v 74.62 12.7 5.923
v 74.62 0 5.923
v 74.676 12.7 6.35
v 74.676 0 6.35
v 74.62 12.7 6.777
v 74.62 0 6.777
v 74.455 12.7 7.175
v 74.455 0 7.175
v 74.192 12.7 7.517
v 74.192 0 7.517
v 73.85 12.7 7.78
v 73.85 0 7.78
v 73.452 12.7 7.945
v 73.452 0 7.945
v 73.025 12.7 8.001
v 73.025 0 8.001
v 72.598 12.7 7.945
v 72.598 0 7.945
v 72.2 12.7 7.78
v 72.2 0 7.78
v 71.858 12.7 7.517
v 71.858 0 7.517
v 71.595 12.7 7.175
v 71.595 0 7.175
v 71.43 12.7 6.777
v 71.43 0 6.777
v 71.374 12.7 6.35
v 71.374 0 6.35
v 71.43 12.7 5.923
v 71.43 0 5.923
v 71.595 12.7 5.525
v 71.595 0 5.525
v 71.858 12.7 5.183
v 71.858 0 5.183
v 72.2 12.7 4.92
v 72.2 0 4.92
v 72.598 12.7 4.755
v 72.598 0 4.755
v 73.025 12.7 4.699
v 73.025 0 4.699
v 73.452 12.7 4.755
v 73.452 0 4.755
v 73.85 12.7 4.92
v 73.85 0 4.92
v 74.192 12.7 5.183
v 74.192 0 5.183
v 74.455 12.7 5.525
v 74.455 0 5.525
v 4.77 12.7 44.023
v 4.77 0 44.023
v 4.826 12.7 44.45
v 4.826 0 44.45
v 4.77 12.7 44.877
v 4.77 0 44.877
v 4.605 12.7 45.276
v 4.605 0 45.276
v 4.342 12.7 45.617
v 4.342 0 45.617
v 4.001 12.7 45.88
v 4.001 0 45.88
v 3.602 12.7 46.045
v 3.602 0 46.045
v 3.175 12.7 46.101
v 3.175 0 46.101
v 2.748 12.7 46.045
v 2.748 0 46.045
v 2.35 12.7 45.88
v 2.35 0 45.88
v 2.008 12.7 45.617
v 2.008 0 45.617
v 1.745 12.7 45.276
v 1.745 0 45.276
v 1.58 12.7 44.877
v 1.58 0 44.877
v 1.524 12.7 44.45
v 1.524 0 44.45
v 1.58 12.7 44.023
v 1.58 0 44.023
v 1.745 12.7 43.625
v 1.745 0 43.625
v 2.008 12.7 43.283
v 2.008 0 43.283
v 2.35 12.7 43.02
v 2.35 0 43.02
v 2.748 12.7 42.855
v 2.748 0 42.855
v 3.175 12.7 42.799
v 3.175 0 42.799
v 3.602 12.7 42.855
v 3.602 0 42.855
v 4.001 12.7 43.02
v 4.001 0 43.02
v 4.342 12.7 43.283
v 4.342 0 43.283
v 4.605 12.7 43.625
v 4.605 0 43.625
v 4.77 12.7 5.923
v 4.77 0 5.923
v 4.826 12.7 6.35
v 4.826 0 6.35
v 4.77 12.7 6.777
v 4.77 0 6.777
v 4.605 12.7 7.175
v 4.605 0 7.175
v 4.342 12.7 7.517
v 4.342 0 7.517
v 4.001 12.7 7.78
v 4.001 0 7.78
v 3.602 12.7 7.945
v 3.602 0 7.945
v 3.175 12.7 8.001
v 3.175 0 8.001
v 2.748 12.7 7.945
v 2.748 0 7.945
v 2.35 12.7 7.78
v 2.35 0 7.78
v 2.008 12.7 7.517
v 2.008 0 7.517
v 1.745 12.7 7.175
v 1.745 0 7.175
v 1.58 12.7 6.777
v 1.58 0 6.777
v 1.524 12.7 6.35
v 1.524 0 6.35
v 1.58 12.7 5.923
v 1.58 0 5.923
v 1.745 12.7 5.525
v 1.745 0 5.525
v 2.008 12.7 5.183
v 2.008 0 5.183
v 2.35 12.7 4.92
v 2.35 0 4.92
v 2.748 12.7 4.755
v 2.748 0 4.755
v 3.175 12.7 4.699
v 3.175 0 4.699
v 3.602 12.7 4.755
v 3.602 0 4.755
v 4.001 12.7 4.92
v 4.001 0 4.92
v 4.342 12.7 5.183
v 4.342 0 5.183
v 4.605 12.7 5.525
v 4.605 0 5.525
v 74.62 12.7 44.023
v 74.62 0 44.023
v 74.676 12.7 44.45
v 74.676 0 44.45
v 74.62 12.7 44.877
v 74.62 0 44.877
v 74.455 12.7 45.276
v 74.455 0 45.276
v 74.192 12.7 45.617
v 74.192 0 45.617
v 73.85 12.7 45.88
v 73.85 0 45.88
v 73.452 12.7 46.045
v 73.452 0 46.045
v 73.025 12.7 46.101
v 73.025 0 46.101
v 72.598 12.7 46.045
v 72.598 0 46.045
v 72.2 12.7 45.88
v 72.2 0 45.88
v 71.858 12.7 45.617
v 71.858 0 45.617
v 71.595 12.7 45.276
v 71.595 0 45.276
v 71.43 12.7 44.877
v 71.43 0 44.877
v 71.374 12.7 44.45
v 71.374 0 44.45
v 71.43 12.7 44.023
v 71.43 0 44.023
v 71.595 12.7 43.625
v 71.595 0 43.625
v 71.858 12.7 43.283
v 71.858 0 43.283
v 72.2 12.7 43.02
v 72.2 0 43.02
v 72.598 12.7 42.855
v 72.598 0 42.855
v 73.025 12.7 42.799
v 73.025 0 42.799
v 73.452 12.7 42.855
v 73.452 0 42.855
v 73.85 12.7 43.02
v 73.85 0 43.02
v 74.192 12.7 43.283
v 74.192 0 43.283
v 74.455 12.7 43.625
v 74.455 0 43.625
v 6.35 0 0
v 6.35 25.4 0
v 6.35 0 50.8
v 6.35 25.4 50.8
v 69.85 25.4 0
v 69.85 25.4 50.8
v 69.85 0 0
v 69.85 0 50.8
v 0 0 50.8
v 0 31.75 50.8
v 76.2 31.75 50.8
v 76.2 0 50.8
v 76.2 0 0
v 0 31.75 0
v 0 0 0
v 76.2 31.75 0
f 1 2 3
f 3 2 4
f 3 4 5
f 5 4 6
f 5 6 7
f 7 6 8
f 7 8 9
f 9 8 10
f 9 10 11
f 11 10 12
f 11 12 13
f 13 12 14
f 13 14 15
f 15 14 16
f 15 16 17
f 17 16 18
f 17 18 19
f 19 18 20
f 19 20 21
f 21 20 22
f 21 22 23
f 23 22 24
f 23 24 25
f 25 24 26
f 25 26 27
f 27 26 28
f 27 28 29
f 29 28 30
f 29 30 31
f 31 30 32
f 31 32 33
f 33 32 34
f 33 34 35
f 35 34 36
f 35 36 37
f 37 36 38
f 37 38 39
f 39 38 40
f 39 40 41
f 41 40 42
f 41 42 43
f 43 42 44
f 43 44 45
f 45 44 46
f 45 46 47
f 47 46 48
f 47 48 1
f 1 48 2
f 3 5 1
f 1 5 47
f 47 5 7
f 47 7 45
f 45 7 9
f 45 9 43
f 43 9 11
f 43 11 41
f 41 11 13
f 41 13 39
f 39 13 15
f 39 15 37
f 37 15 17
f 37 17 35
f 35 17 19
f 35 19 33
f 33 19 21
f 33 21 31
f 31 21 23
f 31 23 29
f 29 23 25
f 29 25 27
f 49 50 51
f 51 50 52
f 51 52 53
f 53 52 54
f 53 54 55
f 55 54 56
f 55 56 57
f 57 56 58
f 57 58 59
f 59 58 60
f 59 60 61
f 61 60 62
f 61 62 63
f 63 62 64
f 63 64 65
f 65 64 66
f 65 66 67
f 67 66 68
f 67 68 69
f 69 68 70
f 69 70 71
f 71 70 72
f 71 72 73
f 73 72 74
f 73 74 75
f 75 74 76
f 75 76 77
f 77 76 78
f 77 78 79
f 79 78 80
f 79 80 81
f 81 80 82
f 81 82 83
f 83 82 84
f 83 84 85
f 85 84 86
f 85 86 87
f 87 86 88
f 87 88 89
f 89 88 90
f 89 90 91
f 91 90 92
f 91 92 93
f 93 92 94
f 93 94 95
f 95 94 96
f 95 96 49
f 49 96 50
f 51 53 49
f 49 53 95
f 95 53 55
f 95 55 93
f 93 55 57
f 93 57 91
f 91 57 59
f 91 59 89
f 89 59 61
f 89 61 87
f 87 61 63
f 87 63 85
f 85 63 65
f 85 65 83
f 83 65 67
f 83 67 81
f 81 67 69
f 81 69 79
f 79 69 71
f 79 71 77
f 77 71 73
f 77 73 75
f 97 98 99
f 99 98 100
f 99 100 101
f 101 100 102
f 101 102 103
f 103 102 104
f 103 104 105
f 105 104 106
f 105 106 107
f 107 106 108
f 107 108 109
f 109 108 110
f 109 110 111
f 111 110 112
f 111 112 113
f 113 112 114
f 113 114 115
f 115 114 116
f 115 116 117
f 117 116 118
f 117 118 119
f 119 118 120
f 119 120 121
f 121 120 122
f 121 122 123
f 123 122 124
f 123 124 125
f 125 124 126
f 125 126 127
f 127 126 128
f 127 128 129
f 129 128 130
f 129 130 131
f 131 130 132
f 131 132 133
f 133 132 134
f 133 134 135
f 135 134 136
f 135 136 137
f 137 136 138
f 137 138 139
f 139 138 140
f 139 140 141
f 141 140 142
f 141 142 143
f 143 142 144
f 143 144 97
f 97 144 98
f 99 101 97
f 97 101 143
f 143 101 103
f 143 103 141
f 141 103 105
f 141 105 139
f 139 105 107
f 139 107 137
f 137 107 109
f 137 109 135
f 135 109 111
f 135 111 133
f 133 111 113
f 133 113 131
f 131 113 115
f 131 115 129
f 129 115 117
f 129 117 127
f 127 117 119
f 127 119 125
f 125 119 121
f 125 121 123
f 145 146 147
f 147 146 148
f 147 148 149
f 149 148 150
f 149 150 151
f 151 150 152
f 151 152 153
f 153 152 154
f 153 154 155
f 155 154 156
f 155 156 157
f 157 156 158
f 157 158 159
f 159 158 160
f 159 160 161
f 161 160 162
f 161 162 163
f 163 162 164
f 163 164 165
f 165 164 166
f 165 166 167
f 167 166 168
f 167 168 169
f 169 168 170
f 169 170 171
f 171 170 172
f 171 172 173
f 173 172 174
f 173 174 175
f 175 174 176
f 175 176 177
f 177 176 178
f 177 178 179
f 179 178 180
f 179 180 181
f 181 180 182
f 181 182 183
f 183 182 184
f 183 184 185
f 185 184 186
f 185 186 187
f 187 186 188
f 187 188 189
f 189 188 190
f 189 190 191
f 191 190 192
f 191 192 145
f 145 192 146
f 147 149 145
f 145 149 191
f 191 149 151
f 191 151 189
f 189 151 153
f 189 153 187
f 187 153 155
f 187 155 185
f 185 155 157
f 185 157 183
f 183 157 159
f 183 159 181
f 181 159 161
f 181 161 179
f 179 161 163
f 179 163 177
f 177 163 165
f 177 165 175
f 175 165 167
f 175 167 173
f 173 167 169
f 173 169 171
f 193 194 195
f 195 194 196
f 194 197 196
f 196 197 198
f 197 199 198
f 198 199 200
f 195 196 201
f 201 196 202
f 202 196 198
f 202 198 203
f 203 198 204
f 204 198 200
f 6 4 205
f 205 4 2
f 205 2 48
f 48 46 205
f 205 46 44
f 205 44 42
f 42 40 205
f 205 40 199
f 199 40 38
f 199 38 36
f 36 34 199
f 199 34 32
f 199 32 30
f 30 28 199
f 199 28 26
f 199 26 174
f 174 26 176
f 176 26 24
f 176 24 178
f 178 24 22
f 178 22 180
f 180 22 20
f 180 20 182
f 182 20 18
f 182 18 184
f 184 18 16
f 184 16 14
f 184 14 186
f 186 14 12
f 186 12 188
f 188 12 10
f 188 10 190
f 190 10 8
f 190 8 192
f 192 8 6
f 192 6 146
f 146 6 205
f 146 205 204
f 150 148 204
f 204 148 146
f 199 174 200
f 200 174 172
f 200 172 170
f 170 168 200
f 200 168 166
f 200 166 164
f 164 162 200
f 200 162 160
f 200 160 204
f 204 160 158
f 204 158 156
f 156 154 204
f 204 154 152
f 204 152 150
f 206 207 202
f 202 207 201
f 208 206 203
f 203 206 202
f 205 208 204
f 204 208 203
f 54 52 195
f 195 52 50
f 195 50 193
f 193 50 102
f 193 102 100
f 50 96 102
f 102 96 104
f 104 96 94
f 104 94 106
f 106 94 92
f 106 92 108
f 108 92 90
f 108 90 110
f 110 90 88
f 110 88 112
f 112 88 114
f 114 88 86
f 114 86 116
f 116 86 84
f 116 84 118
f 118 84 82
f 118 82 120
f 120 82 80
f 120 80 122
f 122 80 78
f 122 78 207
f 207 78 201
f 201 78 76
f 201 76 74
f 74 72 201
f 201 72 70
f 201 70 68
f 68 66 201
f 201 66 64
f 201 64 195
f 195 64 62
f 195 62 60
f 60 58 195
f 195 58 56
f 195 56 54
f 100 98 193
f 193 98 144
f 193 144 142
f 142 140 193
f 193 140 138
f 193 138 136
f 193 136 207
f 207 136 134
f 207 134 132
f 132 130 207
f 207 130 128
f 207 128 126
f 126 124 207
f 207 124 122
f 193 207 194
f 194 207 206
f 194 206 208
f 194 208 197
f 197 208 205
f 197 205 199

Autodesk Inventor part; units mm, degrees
ref_plane "YZ Plane" through (0, 0, 0) normal (1, 0, 0) x (0, 1, 0)
ref_plane "XZ Plane" through (0, 0, 0) normal (0, 1, 0) x (-1, 0, 0)
ref_plane "XY Plane" through (0, 0, 0) normal (0, 0, 1) x (1, 0, 0)
sketch "Sketch1" plane through (0, 0, 0) normal (0, 0, 1) x (1, 0, 0)
  line L0 (0, 0) -> (76.2, 0)
  line L1 (76.2, 0) -> (76.2, 31.75)
  line L2 (76.2, 31.75) -> (0, 31.75)
  line L3 (0, 31.75) -> (0, 0)
  line L4 (6.35, 0) -> (69.85, 0)
  line L5 (69.85, 0) -> (69.85, 25.4)
  line L6 (69.85, 25.4) -> (6.35, 25.4)
  line L7 (6.35, 25.4) -> (6.35, 0)
  dimension "d0" = 6.35
  dimension "d1" = 6.35
  dimension "d2" = 6.35
  dimension "d3" = 63.5
  dimension "d4" = 31.75
extrude "Extrusion1" add sketch "Sketch1" along normal blind 50.8 contours L3 L2 L1 L0 L5 L6 L7
sketch "Sketch2" plane through (0, 0, 0) normal (0, -1, 0) x (1, 0, 0)
  point P0 (0, 0)
ref_plane "Work Plane1" through (0, 0, 25.4) normal (0, 0, 1) x (1, 0, 0)
ref_plane "Work Plane2" through (38.1, 0, 0) normal (-1, 0, 0) x (0, 0, 1)
sketch "Sketch3" plane through (0, 0, 0) normal (0, -1, 0) x (1, 0, 0)
  circle A0 centre (3.175, 44.45) radius 1.651
  line L0 (0, 50.8) -> (6.35, 50.8) projected
  line L1 (6.35, 0) -> (6.35, 50.8) projected
  line L2 (0, 25.4) -> (76.2, 25.4)
  line L3 (76.2, 0) -> (76.2, 50.8) projected
  circle A1 centre (3.175, 6.35) radius 1.651
  line L4 (38.1, 50.8) -> (38.1, 0)
  circle A2 centre (73.025, 6.35) radius 1.651
  circle A3 centre (73.025, 44.45) radius 1.651
  point P0 (0, 0)
  dimension "d7" = 3.302
  dimension "d8" = 6.35
  dimension "d9" = 3.175
extrude "Extrusion2" cut sketch "Sketch3" against normal blind 12.7
properties part number "wirebridge2"
